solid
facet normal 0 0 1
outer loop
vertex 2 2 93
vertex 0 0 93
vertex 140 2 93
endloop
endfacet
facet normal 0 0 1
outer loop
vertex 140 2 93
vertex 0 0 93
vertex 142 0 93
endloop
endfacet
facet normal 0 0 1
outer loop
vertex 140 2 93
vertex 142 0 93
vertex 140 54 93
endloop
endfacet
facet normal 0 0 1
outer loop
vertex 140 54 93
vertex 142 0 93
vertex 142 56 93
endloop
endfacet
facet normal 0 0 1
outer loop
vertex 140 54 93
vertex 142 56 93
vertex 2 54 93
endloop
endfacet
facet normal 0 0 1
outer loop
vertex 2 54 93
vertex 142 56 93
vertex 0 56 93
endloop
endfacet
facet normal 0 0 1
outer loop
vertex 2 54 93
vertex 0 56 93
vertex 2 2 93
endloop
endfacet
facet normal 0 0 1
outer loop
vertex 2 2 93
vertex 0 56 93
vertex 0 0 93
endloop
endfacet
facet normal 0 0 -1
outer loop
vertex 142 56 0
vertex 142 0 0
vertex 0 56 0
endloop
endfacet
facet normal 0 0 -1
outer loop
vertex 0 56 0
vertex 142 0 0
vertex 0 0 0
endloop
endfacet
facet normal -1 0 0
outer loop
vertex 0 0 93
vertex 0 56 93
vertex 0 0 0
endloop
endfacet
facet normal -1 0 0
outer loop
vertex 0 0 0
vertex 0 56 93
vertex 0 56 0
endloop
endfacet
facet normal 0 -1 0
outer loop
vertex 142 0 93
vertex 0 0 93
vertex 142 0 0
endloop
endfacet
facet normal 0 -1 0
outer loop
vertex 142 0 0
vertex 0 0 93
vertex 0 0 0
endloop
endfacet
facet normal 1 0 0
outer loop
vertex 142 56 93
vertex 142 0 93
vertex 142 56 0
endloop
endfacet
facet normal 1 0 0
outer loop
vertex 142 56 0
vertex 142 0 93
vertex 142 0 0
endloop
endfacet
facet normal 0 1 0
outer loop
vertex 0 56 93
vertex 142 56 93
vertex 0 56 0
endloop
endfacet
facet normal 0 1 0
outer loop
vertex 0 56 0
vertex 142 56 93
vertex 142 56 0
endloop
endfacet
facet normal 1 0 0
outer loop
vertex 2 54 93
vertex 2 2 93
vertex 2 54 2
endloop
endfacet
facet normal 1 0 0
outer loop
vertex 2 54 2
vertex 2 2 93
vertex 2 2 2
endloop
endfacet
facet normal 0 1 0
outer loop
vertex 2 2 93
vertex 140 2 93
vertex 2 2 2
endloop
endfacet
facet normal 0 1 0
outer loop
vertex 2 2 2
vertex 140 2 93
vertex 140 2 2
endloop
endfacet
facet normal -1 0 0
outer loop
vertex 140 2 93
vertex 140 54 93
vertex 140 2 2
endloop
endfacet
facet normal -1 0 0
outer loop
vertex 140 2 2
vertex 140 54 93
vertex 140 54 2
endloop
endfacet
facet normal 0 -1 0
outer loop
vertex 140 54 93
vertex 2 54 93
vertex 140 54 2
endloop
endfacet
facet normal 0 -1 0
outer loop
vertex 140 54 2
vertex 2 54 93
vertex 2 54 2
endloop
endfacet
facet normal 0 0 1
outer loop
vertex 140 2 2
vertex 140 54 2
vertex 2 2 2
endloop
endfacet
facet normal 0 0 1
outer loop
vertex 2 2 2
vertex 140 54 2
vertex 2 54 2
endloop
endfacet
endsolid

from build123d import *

# Parameters (mm, degrees)
SKETCH1_W     = 142
SKETCH1_H     = 56
SKETCH1_W_2   = 138
SKETCH1_H_2   = 52
PROFILE_DEPTH = 93
SKETCH2_W     = 138
SKETCH2_H     = 52
BACK_DEPTH    = 2


with BuildPart() as part:
    # Sketch1 → Profile (new body)
    with BuildSketch(Plane.XY):
        with Locations((71, 28)):
            Rectangle(SKETCH1_W, SKETCH1_H)
        with Locations((71, 28)):
            Rectangle(SKETCH1_W_2, SKETCH1_H_2, mode=Mode.SUBTRACT)
    extrude(amount=PROFILE_DEPTH)

    # Sketch2 → Back (add)
    with BuildSketch(Plane.XY):
        with Locations((71, 28)):
            Rectangle(SKETCH2_W, SKETCH2_H)
    extrude(amount=BACK_DEPTH)


solid = part.part
